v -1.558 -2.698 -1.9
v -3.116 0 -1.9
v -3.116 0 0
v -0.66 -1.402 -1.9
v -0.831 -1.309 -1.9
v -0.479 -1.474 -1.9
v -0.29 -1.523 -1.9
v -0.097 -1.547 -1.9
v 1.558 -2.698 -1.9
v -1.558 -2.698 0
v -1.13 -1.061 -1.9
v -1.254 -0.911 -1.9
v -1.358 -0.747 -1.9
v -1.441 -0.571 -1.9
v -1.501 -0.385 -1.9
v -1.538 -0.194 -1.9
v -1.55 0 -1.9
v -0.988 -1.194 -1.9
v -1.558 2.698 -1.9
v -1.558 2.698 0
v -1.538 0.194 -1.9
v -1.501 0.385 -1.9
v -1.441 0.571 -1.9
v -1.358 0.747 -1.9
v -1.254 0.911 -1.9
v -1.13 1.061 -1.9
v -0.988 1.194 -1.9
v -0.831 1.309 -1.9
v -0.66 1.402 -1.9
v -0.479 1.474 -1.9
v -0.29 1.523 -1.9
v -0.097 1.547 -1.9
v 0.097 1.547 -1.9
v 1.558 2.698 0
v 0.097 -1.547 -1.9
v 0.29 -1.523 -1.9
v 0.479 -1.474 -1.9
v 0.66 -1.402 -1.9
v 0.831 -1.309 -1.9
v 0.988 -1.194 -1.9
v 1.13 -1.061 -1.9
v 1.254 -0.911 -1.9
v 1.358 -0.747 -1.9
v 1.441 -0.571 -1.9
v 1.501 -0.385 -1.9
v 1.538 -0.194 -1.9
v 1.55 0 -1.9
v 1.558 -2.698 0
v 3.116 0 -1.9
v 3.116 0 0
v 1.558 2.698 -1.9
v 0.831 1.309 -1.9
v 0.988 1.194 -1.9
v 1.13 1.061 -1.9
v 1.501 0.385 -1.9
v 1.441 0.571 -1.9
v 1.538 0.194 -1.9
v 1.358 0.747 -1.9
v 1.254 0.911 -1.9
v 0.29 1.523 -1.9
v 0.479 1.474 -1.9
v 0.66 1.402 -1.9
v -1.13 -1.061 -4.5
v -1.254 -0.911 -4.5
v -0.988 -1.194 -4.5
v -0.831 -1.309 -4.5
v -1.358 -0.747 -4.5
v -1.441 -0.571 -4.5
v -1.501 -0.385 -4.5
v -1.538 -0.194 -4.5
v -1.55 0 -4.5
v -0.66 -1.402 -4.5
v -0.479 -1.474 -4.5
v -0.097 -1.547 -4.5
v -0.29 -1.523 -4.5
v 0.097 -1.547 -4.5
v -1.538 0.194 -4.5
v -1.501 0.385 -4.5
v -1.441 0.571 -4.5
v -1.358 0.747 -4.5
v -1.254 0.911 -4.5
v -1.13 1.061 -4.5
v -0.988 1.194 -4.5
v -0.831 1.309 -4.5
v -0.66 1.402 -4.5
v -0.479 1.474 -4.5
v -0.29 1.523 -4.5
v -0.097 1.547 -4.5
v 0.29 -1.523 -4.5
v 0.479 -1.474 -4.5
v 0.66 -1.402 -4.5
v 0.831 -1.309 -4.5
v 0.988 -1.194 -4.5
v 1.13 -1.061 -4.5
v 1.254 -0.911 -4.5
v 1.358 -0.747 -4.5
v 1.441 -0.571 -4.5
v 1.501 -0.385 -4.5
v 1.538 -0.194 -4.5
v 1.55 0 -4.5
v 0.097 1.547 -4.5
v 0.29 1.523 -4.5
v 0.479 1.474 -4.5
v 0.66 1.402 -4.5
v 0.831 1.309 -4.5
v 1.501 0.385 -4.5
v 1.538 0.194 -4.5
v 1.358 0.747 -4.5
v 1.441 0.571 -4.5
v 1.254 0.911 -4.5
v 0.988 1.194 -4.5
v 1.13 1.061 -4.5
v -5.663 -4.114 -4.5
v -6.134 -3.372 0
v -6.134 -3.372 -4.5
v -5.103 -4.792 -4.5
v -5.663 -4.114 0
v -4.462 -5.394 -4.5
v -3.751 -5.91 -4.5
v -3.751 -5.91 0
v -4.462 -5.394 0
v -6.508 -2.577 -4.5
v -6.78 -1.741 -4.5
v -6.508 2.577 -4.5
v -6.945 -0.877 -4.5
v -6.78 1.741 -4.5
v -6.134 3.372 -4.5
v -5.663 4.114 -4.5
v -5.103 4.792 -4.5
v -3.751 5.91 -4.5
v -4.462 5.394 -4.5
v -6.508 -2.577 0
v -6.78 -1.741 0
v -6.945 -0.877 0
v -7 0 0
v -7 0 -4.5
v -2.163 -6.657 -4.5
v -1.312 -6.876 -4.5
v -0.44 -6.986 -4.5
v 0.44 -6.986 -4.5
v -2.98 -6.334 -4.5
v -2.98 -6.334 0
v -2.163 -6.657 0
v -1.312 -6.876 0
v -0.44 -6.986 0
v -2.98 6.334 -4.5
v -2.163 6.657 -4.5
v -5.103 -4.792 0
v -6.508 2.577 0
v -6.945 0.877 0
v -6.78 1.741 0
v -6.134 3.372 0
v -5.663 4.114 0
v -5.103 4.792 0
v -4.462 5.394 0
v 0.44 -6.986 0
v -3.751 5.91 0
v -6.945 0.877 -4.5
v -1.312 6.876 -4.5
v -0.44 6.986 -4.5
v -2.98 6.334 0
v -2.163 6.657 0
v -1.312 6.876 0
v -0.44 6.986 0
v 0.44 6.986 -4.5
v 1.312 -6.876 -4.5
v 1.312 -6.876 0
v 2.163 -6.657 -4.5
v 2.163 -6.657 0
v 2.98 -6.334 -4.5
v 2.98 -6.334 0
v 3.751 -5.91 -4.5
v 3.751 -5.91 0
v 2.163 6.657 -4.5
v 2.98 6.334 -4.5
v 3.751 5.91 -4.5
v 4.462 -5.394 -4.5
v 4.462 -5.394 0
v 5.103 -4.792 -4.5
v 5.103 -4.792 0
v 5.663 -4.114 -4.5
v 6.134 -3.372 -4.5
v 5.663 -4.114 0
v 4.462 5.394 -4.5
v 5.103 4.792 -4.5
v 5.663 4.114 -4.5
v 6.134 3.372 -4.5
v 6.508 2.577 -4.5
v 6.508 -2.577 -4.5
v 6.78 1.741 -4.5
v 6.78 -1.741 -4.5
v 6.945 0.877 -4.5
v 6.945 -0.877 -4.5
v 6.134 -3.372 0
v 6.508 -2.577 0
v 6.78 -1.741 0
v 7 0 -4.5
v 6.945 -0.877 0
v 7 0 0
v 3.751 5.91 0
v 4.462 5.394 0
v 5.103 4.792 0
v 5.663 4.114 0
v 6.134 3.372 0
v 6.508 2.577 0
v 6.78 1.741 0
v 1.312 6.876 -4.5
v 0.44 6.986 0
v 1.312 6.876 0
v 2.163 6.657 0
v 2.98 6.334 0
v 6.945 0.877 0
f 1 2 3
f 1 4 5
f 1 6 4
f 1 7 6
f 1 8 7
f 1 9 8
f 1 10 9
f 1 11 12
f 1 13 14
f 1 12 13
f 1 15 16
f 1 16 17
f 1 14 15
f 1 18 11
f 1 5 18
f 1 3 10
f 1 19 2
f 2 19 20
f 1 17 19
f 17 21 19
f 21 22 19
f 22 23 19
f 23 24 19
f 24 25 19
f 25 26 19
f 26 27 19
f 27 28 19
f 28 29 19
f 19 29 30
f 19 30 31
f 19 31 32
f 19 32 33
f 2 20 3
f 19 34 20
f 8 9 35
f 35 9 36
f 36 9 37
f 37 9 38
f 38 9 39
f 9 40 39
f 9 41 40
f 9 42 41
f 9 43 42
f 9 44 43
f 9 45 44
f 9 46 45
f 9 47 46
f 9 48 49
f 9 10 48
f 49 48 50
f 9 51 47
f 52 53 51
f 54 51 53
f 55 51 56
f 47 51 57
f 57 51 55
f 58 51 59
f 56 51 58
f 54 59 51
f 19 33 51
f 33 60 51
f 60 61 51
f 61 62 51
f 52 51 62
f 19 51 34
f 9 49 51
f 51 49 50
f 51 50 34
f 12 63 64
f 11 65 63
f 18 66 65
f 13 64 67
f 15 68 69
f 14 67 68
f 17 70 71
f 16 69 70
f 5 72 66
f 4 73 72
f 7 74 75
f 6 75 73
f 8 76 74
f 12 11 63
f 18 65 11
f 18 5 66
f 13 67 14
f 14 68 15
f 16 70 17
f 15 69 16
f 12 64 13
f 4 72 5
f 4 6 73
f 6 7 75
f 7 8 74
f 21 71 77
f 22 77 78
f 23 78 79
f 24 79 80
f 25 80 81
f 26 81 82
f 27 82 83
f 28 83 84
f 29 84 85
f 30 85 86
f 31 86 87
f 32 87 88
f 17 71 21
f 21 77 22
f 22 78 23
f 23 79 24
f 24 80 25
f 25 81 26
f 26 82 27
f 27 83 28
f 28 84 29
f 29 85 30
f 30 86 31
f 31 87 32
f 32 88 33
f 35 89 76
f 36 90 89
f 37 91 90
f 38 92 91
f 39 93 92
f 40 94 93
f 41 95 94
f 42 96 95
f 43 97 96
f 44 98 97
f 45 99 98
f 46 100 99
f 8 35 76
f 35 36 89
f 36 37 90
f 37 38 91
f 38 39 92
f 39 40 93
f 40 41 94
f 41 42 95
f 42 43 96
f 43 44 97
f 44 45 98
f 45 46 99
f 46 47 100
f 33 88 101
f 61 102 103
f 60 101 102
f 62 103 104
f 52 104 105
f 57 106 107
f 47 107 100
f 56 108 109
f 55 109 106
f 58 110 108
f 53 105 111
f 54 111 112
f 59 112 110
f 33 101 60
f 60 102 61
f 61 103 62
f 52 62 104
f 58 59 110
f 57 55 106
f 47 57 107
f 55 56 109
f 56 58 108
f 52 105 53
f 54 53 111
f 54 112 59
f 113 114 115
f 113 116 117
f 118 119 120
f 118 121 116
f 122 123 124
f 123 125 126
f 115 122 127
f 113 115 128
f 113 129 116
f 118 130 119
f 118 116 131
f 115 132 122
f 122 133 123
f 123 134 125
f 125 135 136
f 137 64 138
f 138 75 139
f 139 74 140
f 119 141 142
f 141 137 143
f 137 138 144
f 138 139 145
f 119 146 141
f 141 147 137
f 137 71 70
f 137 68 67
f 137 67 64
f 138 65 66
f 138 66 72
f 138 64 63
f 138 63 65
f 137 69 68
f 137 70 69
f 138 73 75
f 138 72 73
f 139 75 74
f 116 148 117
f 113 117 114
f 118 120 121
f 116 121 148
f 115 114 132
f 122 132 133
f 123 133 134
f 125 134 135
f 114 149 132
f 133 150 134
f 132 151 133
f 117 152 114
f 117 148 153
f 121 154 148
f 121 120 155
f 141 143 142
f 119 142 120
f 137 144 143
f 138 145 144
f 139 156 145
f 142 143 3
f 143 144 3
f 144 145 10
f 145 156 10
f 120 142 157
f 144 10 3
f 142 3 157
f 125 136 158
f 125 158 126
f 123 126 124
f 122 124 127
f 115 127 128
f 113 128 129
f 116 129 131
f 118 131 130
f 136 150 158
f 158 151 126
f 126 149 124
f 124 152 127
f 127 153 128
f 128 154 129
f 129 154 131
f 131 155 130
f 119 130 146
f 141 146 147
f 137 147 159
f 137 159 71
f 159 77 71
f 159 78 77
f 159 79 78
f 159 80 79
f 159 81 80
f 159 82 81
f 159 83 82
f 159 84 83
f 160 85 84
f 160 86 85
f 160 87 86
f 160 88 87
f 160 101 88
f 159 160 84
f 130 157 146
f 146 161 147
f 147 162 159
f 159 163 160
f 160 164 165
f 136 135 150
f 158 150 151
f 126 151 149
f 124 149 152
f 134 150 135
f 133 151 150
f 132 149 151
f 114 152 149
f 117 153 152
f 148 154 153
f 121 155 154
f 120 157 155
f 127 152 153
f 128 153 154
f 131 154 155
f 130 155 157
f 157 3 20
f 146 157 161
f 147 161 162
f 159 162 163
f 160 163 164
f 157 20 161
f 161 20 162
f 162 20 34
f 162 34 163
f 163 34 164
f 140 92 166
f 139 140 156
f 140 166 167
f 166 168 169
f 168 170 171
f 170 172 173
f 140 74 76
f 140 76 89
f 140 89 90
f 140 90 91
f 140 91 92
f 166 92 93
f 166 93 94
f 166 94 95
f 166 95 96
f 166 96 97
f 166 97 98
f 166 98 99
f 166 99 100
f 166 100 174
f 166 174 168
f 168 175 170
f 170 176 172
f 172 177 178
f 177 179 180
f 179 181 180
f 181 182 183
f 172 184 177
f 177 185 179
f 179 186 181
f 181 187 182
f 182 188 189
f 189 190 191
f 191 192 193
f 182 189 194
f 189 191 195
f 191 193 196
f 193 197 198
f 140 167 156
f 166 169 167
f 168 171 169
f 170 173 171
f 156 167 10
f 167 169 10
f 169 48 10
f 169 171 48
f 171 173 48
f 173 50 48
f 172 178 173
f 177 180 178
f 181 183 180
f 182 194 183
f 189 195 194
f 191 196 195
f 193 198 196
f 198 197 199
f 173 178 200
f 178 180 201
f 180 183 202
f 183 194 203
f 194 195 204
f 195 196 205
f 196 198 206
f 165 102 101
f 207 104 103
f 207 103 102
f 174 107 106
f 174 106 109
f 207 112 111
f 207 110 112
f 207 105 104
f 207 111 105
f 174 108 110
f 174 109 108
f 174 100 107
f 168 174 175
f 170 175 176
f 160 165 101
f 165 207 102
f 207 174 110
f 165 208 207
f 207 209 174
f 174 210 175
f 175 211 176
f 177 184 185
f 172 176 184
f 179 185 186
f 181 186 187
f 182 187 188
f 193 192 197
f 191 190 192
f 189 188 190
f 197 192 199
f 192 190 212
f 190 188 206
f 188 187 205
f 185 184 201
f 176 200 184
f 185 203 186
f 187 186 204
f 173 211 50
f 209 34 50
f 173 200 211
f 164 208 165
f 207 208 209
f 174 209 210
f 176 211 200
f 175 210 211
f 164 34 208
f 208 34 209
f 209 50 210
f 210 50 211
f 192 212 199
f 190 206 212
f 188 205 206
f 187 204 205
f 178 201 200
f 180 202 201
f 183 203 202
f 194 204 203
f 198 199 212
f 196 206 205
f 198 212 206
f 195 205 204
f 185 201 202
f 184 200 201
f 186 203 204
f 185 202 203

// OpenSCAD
$fn = 50;

difference() {
	union() {
		translate(v = [0, 0, -4.5]) {
			cylinder(h = 4.5, r = 7.0);
		}
	}
	union() {
		translate(v = [0, 0, 0]) {
			rotate(a = [0, 0, 0]) {
				difference() {
					union() {
						translate(v = [0, 0, -1.9]) {
							linear_extrude(height = 1.9) {
								polygon(points = [[3.1158, 0.0], [1.5579000000000005, 2.698361953111554], [-1.5578999999999994, 2.6983619531115544], [-3.1158, 3.815754496783323e-16], [-1.5579000000000014, -2.6983619531115535], [1.557899999999998, -2.6983619531115552]]);
							}
						}
					}
					union();
				}
			}
		}
		#translate(v = [0, 0, -100.0]) {
			cylinder(h = 200, r = 1.55);
		}
	}
}
